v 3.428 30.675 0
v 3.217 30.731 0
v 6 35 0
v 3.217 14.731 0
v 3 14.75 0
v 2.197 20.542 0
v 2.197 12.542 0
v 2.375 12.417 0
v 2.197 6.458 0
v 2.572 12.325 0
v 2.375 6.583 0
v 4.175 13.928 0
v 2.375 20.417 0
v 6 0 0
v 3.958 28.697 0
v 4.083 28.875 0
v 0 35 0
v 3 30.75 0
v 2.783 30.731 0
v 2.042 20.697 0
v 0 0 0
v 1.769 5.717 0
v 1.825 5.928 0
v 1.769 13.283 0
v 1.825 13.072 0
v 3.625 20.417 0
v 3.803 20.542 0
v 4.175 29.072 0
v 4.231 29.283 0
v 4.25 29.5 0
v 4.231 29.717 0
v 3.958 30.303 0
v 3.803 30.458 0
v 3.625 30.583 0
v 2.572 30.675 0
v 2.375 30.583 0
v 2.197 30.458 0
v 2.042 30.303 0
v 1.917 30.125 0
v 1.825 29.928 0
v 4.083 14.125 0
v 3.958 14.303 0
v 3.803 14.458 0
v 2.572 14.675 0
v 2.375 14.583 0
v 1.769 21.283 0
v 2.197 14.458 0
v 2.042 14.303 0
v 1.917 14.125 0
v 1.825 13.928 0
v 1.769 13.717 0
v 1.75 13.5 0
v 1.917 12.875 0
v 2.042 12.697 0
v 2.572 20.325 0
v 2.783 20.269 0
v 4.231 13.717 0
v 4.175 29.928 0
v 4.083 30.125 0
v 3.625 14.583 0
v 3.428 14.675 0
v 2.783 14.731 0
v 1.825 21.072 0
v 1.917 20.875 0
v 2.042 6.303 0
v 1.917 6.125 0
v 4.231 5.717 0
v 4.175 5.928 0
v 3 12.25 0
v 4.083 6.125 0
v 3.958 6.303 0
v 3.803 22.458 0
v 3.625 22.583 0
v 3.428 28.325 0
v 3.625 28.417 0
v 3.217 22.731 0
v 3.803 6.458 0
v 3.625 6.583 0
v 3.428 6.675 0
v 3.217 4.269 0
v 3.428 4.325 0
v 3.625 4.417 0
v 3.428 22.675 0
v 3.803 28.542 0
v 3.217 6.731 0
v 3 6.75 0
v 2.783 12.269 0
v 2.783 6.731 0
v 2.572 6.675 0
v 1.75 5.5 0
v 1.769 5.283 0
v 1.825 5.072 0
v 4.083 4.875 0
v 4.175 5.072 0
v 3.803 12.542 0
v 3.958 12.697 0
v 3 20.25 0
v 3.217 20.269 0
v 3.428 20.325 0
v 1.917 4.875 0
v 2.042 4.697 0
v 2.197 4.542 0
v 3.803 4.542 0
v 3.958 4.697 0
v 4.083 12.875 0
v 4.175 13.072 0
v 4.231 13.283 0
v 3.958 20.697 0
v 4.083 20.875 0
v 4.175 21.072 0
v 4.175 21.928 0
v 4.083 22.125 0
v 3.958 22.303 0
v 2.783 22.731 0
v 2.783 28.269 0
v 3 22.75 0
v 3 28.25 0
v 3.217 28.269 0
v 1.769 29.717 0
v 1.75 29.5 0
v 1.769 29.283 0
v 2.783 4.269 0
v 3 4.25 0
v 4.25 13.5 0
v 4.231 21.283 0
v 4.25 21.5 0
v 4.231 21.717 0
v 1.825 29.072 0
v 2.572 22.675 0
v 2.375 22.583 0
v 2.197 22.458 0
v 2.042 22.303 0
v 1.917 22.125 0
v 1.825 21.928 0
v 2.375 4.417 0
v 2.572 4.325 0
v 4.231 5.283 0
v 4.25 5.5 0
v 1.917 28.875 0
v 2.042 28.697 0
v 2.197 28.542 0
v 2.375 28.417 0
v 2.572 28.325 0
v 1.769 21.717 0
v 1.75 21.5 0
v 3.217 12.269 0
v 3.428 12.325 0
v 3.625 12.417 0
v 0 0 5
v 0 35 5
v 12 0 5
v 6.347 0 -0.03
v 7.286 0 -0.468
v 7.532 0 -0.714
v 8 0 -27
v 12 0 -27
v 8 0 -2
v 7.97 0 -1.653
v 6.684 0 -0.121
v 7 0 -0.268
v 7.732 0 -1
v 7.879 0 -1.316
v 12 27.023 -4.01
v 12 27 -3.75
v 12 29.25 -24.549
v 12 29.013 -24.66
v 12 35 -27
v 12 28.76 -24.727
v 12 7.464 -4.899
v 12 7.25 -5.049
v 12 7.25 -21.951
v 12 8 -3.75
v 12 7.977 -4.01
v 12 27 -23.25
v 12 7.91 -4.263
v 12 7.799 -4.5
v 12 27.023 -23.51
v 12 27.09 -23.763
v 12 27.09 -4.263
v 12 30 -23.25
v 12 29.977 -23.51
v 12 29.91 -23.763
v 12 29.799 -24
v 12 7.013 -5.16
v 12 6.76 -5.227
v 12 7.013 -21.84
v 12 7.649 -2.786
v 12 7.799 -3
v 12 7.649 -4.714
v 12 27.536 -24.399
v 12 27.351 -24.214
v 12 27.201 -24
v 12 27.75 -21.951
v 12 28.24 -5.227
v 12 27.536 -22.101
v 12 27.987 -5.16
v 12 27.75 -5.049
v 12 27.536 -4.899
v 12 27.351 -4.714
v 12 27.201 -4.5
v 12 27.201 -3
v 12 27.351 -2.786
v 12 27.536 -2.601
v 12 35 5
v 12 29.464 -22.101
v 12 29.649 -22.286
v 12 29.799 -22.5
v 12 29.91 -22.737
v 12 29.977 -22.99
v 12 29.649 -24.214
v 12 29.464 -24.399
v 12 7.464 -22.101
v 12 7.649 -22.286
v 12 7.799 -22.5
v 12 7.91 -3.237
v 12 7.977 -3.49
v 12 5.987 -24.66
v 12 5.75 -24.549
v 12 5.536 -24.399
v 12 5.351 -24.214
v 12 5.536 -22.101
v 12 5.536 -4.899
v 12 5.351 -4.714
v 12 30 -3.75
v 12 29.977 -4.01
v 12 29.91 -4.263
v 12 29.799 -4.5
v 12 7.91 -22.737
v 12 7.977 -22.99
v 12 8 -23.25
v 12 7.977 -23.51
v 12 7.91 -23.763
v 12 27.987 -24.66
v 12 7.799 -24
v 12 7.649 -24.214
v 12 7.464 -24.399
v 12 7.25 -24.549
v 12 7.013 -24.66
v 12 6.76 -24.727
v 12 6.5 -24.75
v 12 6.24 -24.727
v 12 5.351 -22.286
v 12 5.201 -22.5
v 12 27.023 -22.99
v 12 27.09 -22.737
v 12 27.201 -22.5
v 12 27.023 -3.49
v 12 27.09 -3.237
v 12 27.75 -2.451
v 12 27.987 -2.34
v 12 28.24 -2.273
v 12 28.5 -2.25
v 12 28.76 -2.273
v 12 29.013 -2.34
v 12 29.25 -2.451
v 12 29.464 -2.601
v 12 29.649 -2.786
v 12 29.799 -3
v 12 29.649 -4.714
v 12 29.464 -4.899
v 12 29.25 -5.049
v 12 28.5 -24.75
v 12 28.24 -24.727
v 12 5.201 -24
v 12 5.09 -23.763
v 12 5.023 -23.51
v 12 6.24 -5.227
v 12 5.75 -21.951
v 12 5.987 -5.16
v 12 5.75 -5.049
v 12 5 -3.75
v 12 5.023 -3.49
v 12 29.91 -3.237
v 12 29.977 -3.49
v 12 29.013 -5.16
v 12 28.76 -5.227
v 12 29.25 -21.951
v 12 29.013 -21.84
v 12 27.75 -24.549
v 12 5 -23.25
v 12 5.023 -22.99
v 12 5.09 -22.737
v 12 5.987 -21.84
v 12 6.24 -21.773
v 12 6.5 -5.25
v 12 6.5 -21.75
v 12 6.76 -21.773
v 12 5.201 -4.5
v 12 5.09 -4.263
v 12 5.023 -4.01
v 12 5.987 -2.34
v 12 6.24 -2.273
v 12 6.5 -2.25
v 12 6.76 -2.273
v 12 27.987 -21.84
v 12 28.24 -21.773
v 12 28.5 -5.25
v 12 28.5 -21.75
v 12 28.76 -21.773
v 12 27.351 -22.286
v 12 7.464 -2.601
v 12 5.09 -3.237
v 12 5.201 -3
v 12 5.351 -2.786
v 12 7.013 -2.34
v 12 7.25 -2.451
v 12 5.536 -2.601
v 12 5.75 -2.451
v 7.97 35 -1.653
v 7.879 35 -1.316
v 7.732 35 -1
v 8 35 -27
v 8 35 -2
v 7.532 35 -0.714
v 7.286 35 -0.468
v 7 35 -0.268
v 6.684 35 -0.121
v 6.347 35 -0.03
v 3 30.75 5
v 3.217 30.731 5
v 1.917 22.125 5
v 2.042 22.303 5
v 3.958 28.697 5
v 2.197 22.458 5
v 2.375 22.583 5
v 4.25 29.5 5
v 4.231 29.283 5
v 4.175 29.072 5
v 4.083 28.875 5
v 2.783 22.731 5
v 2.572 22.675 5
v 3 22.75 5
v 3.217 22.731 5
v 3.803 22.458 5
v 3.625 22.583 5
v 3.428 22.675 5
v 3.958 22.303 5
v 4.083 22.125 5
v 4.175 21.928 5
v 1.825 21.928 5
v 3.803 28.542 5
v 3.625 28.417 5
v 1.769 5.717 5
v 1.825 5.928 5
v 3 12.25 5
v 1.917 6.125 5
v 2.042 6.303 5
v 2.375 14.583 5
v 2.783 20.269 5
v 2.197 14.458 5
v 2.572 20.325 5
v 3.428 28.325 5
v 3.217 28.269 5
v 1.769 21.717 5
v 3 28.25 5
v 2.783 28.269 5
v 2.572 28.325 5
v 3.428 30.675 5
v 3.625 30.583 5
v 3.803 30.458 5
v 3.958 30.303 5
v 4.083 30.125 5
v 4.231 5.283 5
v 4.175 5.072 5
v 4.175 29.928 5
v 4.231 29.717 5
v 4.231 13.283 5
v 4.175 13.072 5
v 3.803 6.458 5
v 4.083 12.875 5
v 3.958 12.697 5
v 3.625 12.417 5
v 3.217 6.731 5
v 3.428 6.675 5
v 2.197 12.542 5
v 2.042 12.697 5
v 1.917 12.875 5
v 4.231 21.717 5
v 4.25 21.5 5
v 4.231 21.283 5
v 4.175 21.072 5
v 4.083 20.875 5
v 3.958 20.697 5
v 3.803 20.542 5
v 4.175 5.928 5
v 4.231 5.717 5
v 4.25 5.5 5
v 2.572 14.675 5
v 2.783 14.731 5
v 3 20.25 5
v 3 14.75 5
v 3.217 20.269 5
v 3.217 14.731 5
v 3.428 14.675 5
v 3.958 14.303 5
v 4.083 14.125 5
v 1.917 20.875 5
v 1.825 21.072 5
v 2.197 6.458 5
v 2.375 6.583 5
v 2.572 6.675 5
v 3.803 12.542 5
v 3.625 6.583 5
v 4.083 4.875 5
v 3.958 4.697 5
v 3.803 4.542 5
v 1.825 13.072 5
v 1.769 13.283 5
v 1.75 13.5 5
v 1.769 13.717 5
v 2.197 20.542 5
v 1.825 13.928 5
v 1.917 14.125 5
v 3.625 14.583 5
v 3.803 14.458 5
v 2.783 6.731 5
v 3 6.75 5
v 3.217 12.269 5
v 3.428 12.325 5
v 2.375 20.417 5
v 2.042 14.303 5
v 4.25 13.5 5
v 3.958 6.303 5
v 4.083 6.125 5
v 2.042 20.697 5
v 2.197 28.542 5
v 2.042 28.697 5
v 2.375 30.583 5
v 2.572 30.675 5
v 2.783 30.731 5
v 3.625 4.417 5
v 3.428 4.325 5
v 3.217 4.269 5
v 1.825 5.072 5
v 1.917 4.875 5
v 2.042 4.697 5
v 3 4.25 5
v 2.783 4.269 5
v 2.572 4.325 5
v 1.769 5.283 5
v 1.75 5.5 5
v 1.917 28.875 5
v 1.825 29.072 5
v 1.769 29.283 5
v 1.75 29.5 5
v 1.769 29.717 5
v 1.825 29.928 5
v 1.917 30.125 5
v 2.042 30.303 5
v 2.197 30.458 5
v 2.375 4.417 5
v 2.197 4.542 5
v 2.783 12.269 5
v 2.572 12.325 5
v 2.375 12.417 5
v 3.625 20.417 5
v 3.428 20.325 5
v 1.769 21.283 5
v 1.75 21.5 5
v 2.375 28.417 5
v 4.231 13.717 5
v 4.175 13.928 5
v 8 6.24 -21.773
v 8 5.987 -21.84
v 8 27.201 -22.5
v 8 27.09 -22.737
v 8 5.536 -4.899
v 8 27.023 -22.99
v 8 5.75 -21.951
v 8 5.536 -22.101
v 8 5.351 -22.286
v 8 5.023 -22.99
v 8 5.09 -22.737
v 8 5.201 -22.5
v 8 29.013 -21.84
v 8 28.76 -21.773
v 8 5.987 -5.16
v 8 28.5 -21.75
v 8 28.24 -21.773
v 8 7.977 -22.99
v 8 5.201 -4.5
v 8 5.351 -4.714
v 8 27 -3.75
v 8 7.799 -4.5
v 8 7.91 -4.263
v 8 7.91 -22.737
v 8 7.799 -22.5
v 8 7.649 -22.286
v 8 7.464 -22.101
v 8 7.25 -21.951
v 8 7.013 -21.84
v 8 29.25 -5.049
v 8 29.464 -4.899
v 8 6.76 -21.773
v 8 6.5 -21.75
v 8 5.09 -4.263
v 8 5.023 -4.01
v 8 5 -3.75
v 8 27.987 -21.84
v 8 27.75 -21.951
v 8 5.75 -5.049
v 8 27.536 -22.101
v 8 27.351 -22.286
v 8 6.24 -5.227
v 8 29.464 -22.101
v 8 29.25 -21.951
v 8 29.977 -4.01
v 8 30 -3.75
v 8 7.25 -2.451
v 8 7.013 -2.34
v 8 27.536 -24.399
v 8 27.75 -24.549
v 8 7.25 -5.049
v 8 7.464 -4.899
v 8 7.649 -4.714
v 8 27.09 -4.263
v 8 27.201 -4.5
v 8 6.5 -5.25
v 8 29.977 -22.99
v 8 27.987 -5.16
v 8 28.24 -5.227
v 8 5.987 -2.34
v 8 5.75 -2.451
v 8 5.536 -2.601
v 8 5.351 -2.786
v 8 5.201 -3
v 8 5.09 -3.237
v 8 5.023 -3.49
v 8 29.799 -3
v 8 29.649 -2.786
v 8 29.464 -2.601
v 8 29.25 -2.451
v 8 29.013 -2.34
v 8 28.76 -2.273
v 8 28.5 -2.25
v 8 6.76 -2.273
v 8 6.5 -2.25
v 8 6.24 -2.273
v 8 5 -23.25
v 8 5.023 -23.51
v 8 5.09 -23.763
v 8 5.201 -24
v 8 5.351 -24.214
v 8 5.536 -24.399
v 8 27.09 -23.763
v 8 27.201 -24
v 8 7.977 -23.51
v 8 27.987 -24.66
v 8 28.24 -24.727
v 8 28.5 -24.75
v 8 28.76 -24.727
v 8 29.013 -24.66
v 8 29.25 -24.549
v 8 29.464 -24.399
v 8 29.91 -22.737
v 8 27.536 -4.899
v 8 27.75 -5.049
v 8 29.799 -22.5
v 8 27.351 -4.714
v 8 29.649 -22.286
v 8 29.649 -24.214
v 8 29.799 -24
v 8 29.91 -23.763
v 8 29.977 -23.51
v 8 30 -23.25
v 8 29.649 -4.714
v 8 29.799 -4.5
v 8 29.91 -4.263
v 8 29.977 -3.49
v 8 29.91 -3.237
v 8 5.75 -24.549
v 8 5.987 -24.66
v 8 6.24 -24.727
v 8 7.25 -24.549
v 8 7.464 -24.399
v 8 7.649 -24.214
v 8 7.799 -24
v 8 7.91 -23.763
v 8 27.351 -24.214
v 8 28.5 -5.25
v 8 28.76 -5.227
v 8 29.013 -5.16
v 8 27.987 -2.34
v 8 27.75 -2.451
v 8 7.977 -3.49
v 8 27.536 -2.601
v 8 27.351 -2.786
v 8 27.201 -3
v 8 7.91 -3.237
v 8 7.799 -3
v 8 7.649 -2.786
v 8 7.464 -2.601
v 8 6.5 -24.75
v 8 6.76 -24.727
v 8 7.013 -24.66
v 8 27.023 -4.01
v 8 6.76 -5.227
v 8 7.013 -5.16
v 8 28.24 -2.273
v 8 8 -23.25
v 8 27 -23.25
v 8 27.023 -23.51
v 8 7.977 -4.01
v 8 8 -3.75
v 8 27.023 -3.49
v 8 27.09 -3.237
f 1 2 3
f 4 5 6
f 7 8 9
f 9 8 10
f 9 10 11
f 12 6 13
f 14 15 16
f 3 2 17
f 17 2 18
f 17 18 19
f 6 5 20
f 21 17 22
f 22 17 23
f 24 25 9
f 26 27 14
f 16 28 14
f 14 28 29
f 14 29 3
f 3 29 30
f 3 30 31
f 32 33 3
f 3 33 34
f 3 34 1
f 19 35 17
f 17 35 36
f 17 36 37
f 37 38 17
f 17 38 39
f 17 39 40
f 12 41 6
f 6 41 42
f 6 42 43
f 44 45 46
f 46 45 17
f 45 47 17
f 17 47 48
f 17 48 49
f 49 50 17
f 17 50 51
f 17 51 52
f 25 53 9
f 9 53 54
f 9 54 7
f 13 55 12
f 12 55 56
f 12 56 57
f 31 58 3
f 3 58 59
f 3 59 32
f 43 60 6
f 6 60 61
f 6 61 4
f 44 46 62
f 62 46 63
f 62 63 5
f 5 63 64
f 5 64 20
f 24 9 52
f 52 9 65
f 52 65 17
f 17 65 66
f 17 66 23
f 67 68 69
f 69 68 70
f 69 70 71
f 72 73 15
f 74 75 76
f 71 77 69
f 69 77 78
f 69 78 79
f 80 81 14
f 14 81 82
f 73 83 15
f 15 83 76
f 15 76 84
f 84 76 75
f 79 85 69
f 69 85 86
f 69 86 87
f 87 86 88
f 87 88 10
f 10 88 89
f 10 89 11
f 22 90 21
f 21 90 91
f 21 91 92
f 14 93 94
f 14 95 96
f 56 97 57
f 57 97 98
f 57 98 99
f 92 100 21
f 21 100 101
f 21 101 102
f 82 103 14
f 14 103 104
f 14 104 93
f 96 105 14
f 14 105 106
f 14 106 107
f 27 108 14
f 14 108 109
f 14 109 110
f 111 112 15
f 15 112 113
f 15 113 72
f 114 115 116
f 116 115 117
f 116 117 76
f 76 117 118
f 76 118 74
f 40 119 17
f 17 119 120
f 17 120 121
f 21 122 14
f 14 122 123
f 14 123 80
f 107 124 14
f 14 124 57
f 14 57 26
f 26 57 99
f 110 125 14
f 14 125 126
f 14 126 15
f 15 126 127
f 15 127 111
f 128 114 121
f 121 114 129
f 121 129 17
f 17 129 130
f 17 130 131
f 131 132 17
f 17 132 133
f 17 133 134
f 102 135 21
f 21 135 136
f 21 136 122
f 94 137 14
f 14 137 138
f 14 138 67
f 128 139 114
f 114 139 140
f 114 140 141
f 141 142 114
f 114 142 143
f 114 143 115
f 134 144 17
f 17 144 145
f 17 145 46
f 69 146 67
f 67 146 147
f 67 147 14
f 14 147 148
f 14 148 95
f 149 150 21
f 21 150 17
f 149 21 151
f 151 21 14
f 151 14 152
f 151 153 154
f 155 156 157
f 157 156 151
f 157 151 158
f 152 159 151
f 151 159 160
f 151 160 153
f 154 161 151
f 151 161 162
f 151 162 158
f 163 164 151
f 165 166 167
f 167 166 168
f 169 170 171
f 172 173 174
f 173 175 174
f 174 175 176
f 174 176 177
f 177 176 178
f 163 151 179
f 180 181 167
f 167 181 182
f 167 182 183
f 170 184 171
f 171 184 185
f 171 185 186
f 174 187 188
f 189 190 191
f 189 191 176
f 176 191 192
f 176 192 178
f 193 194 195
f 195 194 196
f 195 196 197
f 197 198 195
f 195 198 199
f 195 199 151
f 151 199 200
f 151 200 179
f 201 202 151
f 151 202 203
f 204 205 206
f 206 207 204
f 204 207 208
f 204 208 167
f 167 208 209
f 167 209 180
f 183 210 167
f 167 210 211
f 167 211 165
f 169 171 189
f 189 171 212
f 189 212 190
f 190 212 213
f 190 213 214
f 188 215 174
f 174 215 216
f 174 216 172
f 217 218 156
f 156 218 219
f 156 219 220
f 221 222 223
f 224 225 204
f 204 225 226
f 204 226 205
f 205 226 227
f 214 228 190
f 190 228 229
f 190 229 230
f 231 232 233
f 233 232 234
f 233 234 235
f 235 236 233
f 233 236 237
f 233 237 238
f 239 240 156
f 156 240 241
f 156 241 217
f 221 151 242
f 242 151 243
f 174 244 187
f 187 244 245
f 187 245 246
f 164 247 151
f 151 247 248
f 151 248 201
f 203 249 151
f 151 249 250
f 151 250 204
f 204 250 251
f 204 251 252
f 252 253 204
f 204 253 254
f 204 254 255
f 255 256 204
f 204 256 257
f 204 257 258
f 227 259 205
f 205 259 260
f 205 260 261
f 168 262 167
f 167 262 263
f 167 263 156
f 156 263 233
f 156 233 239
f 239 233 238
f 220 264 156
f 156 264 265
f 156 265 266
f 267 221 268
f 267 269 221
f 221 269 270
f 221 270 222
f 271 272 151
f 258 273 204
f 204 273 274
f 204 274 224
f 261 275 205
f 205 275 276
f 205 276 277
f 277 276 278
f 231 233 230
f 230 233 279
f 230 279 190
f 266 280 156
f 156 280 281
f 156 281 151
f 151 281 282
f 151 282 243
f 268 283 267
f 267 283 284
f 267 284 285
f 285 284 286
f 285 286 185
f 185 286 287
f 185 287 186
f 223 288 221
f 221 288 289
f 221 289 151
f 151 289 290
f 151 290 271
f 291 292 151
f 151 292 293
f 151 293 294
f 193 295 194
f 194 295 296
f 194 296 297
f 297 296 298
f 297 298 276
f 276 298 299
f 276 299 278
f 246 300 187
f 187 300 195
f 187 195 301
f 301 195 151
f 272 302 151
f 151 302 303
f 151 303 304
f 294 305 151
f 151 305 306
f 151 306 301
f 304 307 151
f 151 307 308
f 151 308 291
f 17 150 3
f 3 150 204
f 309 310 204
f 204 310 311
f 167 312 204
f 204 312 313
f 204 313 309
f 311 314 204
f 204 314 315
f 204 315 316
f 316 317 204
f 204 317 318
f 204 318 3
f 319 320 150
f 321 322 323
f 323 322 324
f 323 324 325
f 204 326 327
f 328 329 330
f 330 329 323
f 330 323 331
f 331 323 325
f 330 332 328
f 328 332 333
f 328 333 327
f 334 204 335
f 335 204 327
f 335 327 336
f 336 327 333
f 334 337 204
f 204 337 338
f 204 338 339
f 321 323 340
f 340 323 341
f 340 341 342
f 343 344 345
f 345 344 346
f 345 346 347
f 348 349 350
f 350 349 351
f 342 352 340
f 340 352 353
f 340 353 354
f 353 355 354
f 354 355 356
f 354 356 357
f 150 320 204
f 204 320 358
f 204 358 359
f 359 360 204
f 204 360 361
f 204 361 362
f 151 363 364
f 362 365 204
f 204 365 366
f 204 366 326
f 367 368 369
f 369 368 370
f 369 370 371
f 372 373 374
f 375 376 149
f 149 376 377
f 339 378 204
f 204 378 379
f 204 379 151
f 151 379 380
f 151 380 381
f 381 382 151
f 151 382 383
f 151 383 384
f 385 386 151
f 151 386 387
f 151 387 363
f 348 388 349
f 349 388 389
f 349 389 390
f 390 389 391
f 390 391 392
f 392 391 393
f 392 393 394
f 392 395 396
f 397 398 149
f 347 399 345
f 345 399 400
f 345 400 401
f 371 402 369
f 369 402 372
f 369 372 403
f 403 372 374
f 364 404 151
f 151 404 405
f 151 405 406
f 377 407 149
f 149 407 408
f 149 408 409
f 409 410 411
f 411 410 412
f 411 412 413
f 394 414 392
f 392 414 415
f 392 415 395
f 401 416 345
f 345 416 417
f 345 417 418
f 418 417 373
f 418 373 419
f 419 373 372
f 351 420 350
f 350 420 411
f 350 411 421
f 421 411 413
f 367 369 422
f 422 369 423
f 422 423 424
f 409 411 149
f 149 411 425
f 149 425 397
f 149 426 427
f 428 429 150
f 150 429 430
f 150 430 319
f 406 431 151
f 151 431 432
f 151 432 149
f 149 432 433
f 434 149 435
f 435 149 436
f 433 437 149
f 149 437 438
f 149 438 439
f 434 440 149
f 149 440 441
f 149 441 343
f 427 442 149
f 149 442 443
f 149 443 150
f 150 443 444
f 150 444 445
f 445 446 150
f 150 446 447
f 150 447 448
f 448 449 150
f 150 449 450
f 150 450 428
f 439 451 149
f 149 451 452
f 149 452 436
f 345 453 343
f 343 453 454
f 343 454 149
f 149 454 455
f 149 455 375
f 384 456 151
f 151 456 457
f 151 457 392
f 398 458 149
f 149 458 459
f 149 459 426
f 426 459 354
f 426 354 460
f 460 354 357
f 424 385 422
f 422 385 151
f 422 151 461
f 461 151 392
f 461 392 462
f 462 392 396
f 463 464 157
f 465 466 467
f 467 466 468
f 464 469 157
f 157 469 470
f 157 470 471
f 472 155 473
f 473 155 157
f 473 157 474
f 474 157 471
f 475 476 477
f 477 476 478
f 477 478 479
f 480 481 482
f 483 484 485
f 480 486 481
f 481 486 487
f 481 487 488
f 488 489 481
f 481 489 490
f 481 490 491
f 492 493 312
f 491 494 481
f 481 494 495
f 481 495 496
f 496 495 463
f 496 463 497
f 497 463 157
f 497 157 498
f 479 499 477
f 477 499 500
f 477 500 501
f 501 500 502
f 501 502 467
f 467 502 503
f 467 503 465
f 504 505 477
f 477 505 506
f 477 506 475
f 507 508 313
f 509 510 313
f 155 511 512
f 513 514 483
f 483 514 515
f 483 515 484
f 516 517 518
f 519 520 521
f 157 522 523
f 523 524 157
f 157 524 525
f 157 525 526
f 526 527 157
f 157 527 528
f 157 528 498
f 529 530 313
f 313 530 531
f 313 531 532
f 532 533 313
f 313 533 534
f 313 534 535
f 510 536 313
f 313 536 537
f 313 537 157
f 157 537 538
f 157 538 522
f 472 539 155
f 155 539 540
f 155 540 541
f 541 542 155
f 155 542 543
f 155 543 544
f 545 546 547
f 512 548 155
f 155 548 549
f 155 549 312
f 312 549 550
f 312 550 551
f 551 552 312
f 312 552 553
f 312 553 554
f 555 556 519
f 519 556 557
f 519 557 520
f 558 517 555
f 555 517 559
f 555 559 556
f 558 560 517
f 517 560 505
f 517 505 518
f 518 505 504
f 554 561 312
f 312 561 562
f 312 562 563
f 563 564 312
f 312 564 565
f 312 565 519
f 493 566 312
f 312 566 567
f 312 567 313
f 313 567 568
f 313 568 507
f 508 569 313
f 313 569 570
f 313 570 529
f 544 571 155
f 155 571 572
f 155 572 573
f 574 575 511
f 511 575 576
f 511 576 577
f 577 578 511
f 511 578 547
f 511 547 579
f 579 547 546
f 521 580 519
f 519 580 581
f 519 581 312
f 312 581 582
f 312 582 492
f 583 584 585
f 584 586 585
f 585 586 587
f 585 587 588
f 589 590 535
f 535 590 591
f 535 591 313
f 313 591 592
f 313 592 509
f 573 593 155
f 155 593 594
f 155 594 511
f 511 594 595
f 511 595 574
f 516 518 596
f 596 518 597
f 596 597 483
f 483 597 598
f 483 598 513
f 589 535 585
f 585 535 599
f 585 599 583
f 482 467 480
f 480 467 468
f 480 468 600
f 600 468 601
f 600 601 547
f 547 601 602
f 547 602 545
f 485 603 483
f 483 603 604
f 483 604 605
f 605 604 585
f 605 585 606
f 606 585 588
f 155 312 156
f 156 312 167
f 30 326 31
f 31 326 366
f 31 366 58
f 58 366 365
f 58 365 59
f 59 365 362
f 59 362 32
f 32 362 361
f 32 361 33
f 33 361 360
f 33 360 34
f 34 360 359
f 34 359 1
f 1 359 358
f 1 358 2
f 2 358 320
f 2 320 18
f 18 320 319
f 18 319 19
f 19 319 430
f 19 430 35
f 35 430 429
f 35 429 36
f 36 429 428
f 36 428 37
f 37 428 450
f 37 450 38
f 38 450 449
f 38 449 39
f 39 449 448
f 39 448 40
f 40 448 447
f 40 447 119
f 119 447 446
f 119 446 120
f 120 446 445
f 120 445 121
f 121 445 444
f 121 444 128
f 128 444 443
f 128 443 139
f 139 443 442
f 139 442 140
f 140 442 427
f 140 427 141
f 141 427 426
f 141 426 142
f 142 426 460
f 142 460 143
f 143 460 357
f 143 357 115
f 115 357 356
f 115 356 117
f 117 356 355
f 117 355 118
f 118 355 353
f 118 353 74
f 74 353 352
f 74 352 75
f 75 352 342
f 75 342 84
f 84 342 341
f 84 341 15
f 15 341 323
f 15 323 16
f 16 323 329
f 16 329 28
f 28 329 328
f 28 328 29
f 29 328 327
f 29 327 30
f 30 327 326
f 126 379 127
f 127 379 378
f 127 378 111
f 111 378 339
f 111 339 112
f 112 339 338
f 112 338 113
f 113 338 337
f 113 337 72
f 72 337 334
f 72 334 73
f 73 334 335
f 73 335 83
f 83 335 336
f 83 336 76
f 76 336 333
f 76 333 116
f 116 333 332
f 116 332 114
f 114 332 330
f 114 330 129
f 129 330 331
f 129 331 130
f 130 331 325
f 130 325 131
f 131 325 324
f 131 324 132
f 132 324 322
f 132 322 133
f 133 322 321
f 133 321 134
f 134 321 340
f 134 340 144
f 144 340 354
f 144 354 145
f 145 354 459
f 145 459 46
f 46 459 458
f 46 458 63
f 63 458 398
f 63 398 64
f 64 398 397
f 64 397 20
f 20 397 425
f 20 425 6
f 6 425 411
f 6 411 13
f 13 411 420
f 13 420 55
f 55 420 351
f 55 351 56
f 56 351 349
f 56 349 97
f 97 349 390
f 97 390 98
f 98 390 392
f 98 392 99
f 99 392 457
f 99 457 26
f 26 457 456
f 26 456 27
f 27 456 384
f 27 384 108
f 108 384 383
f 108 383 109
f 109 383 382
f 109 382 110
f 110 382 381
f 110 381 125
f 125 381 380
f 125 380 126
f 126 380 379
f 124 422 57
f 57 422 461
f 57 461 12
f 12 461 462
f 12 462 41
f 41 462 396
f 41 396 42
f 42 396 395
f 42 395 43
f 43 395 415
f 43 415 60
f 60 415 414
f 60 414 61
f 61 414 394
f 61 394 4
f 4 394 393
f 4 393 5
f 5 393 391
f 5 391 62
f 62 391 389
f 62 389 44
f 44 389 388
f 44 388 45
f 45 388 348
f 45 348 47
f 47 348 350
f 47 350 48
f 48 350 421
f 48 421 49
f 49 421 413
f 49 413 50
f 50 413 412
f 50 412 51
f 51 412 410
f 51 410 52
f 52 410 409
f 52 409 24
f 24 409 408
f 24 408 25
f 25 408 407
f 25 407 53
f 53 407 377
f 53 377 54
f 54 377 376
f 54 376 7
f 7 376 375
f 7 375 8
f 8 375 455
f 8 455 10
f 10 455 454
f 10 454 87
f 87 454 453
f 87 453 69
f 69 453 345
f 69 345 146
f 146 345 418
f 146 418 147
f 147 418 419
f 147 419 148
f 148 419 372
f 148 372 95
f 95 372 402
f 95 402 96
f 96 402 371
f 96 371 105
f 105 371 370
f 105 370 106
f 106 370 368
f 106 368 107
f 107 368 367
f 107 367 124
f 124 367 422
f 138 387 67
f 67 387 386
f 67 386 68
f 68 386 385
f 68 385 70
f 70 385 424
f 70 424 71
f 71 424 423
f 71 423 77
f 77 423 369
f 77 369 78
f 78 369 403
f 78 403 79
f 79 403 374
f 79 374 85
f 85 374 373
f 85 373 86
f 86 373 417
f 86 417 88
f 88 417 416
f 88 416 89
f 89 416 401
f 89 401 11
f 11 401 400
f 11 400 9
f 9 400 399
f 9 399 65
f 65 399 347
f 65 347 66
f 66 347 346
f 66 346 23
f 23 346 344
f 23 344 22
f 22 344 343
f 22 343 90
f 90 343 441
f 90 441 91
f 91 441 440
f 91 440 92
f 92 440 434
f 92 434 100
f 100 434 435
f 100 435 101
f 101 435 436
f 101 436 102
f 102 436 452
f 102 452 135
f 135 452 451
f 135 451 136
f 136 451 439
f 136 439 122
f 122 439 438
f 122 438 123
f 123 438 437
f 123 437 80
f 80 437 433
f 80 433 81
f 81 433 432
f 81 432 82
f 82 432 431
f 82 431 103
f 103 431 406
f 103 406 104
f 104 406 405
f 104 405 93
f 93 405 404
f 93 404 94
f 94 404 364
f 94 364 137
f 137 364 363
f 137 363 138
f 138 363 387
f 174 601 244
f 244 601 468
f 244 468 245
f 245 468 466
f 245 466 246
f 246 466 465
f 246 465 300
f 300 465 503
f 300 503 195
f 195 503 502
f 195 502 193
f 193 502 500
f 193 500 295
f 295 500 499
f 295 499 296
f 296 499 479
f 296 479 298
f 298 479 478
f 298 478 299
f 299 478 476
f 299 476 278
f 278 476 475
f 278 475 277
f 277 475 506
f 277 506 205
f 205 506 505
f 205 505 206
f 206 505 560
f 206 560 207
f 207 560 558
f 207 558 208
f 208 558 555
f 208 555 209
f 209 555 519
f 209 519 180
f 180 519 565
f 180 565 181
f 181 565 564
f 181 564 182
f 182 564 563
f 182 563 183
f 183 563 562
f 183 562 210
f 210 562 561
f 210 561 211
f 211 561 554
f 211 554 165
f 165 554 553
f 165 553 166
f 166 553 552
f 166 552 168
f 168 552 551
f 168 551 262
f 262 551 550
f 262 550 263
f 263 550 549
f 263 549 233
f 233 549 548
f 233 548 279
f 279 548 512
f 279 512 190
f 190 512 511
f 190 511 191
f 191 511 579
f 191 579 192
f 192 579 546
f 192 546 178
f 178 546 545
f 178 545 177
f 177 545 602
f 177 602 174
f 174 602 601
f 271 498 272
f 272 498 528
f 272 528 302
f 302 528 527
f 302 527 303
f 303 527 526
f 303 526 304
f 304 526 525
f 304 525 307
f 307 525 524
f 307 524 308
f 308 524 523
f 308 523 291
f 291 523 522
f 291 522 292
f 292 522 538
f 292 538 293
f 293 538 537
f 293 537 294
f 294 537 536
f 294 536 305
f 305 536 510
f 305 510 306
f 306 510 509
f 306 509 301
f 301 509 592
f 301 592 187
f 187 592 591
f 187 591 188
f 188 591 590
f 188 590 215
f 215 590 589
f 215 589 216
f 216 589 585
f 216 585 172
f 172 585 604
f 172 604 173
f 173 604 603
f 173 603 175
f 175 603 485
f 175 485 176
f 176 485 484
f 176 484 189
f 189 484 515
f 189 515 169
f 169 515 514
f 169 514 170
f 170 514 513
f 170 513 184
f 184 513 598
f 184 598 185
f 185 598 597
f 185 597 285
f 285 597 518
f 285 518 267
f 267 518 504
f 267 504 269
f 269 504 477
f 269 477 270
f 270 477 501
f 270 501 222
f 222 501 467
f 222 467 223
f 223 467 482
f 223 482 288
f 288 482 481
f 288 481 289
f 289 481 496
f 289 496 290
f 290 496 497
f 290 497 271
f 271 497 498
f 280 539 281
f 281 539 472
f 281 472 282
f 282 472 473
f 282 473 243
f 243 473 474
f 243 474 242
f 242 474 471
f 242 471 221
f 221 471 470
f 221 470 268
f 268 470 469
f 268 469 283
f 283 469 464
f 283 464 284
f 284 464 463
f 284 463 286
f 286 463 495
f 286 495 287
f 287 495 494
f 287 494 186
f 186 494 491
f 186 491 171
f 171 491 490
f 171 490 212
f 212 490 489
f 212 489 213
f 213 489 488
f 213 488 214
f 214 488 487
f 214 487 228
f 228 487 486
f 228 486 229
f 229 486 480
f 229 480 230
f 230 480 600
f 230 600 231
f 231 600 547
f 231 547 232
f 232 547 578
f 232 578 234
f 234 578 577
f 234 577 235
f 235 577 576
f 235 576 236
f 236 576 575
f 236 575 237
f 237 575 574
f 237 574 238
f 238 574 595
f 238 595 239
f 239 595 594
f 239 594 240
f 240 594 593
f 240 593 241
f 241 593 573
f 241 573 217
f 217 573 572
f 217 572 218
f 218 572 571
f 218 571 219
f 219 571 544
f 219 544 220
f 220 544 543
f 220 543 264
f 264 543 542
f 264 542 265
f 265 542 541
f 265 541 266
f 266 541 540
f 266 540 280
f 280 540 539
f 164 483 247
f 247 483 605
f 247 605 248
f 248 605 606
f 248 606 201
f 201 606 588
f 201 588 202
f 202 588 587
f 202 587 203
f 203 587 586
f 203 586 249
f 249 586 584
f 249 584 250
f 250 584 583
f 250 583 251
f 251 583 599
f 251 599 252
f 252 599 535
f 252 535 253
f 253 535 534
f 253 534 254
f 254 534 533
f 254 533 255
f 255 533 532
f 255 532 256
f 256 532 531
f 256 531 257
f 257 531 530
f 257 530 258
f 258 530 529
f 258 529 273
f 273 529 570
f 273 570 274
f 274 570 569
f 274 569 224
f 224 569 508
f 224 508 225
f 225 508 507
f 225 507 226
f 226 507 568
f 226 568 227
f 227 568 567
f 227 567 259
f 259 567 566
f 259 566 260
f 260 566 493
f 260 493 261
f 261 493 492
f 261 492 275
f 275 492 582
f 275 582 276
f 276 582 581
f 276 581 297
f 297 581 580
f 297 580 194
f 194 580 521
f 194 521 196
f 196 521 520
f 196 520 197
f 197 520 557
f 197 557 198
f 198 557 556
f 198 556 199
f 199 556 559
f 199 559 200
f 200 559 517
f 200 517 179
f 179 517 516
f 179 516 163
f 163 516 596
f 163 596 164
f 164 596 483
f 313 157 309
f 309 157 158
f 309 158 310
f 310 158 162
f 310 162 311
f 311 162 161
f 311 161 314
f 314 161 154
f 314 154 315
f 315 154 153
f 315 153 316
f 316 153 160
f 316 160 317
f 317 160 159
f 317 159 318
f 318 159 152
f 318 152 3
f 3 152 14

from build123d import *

# Parameters (mm, degrees)
ESQUISSE1_W             = 12
ESQUISSE1_H             = 35
BOSS_EXTRU_1_DEPTH      = 5
ESQUISSE2_W             = 4
ESQUISSE2_H             = 35
BOSS_EXTRU_2_DEPTH      = 27
ESQUISSE3_R             = 1.25
ENL_V_MAT_EXTRU_1_DEPTH = 33
ESQUISSE4_R             = 1.5
ENL_V_MAT_EXTRU_2_DEPTH = 5
CONG_1_R                = 2


with BuildPart() as part:
    # Esquisse1 → Boss.-Extru.1 (new body)
    with BuildSketch(Plane.XY):
        with Locations((6, 17.5)):
            Rectangle(ESQUISSE1_W, ESQUISSE1_H)
    extrude(amount=BOSS_EXTRU_1_DEPTH)

    # Esquisse2 → Boss.-Extru.2 (add)
    with BuildSketch(Plane(origin=(0, 0, 0), x_dir=(-1, 0, 0), z_dir=(0, 0, -1))):
        with Locations((-10, 17.5)):
            Rectangle(ESQUISSE2_W, ESQUISSE2_H)
    extrude(amount=BOSS_EXTRU_2_DEPTH)

    # Esquisse3 → Enlèv. mat.-Extru.1 (cut, through all)
    with BuildSketch(Plane.XY.offset(5)):
        with Locations((3, 5.5)):
            Circle(ESQUISSE3_R)
        with Locations((3, 13.5)):
            Circle(ESQUISSE3_R)
        with Locations((3, 21.5)):
            Circle(ESQUISSE3_R)
        with Locations((3, 29.5)):
            Circle(ESQUISSE3_R)
    extrude(amount=-ENL_V_MAT_EXTRU_1_DEPTH, mode=Mode.SUBTRACT)

    # Esquisse4 → Enlèv. mat.-Extru.2 (cut, through all)
    with BuildSketch(Plane.ZY.offset(-8)):
        with Locations((-23.25, 28.5)):
            Circle(ESQUISSE4_R)
        with Locations((-3.75, 28.5)):
            Circle(ESQUISSE4_R)
        with Locations((-23.25, 6.5)):
            Circle(ESQUISSE4_R)
        with Locations((-3.75, 6.5)):
            Circle(ESQUISSE4_R)
    extrude(amount=-ENL_V_MAT_EXTRU_2_DEPTH, mode=Mode.SUBTRACT)

    # Congé1
    cong_1_edges = [part.edges().sort_by_distance(p)[0] for p in [
        (8, 17.5, 0),
    ]]
    fillet(cong_1_edges, radius=CONG_1_R)


solid = part.part
